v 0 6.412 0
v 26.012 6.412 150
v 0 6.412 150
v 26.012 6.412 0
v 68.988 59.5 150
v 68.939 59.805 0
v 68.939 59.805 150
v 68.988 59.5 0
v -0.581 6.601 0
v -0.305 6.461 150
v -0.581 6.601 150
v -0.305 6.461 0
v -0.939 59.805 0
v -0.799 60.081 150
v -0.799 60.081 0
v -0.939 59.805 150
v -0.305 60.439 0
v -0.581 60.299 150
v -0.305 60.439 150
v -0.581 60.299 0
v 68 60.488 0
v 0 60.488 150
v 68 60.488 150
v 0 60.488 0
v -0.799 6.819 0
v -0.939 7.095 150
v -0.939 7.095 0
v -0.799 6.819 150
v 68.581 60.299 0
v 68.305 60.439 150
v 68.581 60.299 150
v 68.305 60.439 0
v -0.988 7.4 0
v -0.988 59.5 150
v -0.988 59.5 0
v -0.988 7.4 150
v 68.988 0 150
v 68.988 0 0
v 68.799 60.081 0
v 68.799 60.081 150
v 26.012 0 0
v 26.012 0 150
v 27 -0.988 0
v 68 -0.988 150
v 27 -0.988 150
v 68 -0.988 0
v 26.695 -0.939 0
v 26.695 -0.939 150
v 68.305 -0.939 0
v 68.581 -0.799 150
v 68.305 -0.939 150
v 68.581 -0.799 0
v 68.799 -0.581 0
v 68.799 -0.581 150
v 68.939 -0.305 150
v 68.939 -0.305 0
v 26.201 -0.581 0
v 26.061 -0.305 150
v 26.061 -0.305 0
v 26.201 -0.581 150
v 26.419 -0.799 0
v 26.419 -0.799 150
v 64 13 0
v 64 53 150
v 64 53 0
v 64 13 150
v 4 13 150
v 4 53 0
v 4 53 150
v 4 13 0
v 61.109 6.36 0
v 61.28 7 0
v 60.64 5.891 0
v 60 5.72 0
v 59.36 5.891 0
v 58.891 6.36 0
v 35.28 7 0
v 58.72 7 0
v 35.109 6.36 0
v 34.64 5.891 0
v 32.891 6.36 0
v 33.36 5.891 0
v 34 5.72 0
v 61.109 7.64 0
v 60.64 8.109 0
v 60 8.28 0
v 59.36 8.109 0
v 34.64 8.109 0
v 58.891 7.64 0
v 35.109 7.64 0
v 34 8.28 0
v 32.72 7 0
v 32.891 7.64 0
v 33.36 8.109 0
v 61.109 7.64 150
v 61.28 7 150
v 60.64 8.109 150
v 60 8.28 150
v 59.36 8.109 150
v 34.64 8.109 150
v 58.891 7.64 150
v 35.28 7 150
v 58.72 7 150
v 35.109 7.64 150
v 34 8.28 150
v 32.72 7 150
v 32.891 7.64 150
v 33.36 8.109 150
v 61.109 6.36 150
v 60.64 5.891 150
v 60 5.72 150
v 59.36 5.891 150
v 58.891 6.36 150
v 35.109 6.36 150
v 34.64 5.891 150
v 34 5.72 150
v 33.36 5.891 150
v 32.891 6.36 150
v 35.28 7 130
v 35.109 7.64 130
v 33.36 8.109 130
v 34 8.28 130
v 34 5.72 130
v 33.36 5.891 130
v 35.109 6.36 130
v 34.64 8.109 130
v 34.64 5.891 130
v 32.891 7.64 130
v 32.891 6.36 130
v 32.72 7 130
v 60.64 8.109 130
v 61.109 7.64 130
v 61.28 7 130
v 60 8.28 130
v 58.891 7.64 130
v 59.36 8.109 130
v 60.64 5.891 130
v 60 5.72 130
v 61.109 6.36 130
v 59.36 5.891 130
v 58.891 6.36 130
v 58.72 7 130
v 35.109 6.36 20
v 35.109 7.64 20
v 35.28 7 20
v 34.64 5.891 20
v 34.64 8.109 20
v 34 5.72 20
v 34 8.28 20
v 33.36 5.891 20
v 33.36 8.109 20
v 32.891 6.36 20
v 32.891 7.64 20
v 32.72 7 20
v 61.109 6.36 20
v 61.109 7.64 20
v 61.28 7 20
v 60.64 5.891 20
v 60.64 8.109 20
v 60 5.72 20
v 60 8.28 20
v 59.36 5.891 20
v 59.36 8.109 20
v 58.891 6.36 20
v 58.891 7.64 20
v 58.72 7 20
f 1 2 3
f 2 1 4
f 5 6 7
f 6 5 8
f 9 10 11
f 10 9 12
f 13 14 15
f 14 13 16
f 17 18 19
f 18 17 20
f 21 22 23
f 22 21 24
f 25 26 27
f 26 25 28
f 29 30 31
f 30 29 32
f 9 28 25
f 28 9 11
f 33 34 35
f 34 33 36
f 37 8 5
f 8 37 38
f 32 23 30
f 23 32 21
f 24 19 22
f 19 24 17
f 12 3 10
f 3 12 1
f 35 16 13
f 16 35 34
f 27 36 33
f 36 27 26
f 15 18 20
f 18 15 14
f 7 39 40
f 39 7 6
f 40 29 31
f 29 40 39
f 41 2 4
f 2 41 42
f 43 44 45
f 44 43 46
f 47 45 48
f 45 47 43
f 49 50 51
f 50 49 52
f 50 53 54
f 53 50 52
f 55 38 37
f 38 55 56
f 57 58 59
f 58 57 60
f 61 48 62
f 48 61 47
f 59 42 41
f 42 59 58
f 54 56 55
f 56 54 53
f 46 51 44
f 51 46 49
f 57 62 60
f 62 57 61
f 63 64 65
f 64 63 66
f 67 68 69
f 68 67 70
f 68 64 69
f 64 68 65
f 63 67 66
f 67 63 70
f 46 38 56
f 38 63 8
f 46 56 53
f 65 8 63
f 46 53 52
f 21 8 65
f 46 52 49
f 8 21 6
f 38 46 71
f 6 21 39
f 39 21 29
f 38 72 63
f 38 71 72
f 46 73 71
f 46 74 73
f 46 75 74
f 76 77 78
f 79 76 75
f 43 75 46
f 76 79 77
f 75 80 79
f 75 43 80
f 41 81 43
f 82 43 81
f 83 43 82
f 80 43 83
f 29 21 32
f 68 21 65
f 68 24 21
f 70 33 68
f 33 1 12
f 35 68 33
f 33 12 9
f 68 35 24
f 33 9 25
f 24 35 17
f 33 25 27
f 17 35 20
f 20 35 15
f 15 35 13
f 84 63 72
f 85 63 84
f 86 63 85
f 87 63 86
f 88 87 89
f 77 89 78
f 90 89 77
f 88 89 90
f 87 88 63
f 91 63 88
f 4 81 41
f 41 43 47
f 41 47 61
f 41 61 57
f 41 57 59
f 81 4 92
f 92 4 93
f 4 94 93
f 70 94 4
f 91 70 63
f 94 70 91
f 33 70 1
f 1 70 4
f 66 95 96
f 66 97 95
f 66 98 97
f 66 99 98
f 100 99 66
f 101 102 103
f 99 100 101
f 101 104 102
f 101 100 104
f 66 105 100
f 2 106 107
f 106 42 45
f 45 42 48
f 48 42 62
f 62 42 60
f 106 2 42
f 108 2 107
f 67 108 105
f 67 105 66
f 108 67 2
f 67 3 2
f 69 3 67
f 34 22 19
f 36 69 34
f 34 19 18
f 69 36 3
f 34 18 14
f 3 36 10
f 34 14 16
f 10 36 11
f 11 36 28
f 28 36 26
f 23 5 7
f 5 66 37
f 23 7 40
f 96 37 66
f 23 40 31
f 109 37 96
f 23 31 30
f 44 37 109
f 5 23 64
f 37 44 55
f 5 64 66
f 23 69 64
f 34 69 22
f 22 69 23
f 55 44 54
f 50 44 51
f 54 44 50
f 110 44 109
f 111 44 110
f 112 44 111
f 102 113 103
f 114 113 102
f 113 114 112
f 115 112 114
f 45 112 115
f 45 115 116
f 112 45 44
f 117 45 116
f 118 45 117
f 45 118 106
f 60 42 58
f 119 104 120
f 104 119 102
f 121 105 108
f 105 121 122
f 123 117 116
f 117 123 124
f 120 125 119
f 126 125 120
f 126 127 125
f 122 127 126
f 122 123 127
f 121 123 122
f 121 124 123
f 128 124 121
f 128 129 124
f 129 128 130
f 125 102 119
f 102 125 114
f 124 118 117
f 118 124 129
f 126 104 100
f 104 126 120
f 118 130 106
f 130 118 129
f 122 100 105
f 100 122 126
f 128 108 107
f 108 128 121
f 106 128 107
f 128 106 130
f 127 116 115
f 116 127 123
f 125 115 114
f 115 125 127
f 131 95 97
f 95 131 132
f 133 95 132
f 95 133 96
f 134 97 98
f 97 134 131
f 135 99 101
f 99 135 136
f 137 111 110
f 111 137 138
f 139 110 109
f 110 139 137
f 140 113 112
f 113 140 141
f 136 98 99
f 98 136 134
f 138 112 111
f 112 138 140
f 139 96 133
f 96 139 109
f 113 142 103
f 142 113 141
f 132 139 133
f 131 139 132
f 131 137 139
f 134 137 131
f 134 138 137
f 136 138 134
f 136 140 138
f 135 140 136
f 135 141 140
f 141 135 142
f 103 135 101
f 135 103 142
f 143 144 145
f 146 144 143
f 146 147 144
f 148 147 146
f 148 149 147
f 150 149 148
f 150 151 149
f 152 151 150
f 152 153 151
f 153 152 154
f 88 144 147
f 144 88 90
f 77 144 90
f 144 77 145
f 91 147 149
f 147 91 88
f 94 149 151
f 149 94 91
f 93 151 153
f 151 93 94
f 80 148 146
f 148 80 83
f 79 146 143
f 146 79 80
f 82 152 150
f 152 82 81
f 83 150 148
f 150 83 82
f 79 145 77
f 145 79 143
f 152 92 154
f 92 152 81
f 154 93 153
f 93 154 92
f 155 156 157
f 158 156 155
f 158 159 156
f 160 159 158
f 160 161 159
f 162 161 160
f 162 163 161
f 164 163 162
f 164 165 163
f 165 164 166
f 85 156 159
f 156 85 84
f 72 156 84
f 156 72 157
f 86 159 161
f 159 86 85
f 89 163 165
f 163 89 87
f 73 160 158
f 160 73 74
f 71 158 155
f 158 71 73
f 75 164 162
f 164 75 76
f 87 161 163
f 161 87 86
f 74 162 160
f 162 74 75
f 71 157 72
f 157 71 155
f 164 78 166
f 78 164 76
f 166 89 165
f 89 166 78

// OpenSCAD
difference() {
    minkowski() {
        difference() {
            cube([70-2, 61.5-2, 150]);
            color("red")
            cube([27, 7.4, 200]);
        }
        sphere(d=2, $fn=20);
    }
    // center
    color("orange")
    translate([4, 13, -1])
    cube([60, 40, 200]);

    // make top/bottom flat
    color("red")
    translate([-5, -5, -10])
    cube([90, 90, 10]);
    color("red")
    translate([-5, -5, 150])
    cube([90, 90, 10]);

    // conector holes
    $fn=12;
    d=2.56;
    color("black")
    translate([34, 7, 130])
    cylinder(40, d=d);
    color("black")
    translate([60, 7, 130])
    cylinder(40, d=d);
    color("black")
    translate([34, 7, -20])
    cylinder(40, d=d);
    color("black")
    translate([60, 7, -20])
    cylinder(40, d=d);
}
